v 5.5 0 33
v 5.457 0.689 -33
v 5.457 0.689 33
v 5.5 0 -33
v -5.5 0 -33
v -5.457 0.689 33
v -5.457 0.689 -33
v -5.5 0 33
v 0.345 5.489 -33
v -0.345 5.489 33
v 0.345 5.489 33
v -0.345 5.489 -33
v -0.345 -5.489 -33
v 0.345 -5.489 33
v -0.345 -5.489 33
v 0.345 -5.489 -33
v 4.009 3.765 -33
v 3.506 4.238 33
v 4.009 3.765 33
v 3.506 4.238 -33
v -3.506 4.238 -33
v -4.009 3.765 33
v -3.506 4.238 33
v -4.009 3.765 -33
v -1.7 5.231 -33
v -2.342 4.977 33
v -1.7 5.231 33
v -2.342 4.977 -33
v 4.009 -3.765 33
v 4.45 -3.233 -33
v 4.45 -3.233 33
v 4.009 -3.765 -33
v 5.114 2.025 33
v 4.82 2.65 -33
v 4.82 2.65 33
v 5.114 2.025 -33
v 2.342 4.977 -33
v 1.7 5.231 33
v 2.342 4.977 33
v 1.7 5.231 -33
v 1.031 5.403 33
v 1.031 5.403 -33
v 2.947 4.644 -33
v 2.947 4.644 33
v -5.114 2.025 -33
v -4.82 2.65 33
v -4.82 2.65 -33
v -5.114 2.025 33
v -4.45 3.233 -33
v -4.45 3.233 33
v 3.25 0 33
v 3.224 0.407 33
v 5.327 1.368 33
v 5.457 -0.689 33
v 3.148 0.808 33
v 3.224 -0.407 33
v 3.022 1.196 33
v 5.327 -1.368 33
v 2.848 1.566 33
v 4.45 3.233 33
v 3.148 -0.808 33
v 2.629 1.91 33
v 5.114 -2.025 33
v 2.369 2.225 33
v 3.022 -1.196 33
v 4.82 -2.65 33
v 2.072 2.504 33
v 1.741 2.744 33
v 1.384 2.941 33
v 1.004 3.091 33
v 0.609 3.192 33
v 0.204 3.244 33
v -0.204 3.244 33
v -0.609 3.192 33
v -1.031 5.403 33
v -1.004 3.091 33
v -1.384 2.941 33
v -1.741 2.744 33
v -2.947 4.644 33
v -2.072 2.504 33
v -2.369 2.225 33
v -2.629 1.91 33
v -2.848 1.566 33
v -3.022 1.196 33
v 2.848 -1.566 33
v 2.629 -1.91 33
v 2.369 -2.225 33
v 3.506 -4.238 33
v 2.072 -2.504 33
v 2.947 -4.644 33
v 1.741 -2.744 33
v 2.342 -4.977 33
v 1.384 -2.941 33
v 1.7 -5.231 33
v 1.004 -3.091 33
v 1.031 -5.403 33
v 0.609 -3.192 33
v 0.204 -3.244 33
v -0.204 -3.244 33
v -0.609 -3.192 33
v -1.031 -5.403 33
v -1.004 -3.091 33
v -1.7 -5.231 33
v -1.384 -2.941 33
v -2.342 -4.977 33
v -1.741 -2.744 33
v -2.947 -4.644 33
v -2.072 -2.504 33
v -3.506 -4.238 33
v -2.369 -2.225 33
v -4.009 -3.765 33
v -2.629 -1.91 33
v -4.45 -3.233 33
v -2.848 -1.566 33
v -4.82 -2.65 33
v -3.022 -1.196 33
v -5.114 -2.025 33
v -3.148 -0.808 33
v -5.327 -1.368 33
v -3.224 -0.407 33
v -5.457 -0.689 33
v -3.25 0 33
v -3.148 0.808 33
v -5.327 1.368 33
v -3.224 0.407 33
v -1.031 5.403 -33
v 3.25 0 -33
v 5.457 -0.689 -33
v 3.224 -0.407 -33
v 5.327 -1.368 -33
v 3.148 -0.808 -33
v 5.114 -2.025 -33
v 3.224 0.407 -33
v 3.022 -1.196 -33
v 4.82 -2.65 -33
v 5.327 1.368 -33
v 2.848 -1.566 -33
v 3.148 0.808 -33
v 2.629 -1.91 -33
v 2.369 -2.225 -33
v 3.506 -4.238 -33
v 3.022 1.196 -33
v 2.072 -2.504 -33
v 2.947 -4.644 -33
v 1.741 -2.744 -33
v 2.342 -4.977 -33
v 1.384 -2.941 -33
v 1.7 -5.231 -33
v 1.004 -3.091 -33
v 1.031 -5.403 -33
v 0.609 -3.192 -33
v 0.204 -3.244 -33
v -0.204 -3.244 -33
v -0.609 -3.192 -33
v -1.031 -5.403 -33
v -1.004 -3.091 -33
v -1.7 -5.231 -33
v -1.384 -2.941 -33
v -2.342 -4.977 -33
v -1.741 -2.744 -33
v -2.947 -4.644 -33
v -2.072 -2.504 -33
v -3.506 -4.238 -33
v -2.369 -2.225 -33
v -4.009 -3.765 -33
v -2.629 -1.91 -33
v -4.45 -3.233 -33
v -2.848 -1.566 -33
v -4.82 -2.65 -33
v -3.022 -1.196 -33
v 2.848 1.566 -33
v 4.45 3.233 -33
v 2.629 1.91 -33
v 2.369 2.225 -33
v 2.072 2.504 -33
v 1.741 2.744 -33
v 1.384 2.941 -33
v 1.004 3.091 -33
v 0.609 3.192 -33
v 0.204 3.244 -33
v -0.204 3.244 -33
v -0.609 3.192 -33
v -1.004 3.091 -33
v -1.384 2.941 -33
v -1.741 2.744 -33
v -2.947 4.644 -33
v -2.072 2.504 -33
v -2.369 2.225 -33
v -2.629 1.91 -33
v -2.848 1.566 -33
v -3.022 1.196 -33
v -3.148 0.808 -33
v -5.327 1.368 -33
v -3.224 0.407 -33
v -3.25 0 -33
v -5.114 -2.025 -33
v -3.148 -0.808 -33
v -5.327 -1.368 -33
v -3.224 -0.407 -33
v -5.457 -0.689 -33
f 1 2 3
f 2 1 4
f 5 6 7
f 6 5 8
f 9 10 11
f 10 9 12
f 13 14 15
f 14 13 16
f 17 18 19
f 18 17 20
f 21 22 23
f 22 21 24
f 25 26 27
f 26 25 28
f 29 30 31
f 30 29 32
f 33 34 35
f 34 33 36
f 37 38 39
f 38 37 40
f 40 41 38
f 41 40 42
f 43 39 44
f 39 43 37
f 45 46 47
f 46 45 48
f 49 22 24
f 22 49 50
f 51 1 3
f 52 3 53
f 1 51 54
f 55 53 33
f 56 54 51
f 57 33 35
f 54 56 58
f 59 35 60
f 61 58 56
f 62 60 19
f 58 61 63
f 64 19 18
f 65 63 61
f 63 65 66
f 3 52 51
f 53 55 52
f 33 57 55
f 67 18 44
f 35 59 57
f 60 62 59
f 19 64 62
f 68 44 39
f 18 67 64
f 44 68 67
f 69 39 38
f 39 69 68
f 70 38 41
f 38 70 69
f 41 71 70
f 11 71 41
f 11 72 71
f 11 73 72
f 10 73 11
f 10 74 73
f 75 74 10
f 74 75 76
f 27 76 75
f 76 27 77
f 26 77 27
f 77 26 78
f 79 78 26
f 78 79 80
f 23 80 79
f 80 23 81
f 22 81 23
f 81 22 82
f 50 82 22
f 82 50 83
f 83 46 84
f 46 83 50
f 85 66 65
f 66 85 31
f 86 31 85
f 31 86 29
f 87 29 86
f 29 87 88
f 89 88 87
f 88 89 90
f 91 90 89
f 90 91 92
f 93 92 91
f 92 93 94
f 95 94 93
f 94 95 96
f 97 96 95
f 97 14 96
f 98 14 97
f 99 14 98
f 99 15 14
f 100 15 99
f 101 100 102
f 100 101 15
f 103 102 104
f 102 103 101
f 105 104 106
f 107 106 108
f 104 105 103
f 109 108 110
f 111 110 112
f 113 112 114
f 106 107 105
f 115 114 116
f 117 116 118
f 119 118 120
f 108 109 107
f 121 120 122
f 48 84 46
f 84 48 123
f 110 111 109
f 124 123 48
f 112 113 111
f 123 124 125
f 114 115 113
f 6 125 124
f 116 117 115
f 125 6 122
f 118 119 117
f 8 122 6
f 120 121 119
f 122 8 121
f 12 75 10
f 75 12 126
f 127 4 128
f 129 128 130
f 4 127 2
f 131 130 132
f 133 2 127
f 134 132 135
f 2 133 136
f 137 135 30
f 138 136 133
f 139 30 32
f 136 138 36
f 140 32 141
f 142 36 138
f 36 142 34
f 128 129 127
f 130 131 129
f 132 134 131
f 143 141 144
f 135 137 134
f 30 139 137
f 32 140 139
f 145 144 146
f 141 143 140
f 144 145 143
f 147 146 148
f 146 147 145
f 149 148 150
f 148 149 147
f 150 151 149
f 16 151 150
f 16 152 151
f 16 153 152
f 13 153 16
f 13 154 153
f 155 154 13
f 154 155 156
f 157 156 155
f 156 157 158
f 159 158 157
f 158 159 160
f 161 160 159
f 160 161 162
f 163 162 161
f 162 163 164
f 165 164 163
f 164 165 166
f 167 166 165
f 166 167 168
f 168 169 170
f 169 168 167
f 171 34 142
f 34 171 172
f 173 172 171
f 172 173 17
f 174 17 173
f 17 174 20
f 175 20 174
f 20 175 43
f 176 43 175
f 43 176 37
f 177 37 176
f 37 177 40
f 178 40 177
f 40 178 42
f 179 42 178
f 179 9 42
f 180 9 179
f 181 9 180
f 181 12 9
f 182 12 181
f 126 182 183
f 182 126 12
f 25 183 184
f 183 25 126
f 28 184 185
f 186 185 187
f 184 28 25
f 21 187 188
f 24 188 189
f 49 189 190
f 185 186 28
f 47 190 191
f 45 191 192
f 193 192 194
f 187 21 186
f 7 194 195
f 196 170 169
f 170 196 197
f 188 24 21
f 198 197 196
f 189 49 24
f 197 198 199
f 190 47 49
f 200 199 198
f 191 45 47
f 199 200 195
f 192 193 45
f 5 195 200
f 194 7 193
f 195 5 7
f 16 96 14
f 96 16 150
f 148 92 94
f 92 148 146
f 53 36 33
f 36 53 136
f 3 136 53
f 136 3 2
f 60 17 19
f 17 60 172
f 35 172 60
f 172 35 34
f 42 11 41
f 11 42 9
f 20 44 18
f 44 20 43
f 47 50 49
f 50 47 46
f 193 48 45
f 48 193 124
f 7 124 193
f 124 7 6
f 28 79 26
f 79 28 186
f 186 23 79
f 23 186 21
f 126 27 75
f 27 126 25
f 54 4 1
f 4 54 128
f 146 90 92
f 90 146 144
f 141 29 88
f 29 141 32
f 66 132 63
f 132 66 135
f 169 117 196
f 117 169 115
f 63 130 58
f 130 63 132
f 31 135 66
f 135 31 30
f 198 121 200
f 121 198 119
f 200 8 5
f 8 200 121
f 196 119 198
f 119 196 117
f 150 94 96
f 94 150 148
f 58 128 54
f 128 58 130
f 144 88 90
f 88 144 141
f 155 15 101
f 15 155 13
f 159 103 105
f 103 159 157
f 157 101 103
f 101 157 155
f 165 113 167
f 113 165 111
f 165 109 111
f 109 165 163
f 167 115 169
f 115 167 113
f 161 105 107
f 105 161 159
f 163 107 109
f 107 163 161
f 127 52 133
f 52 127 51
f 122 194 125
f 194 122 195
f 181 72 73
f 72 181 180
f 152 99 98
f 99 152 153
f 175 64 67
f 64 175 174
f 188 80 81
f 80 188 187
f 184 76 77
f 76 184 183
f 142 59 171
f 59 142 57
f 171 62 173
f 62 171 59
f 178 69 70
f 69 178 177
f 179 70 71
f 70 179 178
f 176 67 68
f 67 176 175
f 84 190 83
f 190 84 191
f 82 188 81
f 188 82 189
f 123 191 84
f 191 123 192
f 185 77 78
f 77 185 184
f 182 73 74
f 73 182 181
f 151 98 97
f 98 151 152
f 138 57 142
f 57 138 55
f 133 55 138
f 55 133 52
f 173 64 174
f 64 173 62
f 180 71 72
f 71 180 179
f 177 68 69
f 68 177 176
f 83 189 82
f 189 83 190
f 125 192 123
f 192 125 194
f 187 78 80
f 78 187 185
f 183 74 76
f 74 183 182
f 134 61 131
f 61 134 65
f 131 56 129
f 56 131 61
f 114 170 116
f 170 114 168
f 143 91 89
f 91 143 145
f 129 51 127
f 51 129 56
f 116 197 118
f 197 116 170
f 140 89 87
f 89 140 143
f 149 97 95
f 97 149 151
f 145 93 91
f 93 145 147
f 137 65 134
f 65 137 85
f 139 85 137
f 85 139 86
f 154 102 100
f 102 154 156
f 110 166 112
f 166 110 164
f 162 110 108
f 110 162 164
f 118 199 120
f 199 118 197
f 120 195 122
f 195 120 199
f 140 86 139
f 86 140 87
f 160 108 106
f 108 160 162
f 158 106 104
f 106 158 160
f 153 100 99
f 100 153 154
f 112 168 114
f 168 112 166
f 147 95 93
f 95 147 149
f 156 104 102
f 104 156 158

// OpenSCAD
$fn = 50;


difference() {
	union() {
		translate(v = [0, 0, -33.0000000000]) {
			cylinder(h = 66, r = 5.5000000000);
		}
	}
	union() {
		translate(v = [0, 0, -100.0000000000]) {
			cylinder(h = 200, r = 3.2500000000);
		}
	}
}
